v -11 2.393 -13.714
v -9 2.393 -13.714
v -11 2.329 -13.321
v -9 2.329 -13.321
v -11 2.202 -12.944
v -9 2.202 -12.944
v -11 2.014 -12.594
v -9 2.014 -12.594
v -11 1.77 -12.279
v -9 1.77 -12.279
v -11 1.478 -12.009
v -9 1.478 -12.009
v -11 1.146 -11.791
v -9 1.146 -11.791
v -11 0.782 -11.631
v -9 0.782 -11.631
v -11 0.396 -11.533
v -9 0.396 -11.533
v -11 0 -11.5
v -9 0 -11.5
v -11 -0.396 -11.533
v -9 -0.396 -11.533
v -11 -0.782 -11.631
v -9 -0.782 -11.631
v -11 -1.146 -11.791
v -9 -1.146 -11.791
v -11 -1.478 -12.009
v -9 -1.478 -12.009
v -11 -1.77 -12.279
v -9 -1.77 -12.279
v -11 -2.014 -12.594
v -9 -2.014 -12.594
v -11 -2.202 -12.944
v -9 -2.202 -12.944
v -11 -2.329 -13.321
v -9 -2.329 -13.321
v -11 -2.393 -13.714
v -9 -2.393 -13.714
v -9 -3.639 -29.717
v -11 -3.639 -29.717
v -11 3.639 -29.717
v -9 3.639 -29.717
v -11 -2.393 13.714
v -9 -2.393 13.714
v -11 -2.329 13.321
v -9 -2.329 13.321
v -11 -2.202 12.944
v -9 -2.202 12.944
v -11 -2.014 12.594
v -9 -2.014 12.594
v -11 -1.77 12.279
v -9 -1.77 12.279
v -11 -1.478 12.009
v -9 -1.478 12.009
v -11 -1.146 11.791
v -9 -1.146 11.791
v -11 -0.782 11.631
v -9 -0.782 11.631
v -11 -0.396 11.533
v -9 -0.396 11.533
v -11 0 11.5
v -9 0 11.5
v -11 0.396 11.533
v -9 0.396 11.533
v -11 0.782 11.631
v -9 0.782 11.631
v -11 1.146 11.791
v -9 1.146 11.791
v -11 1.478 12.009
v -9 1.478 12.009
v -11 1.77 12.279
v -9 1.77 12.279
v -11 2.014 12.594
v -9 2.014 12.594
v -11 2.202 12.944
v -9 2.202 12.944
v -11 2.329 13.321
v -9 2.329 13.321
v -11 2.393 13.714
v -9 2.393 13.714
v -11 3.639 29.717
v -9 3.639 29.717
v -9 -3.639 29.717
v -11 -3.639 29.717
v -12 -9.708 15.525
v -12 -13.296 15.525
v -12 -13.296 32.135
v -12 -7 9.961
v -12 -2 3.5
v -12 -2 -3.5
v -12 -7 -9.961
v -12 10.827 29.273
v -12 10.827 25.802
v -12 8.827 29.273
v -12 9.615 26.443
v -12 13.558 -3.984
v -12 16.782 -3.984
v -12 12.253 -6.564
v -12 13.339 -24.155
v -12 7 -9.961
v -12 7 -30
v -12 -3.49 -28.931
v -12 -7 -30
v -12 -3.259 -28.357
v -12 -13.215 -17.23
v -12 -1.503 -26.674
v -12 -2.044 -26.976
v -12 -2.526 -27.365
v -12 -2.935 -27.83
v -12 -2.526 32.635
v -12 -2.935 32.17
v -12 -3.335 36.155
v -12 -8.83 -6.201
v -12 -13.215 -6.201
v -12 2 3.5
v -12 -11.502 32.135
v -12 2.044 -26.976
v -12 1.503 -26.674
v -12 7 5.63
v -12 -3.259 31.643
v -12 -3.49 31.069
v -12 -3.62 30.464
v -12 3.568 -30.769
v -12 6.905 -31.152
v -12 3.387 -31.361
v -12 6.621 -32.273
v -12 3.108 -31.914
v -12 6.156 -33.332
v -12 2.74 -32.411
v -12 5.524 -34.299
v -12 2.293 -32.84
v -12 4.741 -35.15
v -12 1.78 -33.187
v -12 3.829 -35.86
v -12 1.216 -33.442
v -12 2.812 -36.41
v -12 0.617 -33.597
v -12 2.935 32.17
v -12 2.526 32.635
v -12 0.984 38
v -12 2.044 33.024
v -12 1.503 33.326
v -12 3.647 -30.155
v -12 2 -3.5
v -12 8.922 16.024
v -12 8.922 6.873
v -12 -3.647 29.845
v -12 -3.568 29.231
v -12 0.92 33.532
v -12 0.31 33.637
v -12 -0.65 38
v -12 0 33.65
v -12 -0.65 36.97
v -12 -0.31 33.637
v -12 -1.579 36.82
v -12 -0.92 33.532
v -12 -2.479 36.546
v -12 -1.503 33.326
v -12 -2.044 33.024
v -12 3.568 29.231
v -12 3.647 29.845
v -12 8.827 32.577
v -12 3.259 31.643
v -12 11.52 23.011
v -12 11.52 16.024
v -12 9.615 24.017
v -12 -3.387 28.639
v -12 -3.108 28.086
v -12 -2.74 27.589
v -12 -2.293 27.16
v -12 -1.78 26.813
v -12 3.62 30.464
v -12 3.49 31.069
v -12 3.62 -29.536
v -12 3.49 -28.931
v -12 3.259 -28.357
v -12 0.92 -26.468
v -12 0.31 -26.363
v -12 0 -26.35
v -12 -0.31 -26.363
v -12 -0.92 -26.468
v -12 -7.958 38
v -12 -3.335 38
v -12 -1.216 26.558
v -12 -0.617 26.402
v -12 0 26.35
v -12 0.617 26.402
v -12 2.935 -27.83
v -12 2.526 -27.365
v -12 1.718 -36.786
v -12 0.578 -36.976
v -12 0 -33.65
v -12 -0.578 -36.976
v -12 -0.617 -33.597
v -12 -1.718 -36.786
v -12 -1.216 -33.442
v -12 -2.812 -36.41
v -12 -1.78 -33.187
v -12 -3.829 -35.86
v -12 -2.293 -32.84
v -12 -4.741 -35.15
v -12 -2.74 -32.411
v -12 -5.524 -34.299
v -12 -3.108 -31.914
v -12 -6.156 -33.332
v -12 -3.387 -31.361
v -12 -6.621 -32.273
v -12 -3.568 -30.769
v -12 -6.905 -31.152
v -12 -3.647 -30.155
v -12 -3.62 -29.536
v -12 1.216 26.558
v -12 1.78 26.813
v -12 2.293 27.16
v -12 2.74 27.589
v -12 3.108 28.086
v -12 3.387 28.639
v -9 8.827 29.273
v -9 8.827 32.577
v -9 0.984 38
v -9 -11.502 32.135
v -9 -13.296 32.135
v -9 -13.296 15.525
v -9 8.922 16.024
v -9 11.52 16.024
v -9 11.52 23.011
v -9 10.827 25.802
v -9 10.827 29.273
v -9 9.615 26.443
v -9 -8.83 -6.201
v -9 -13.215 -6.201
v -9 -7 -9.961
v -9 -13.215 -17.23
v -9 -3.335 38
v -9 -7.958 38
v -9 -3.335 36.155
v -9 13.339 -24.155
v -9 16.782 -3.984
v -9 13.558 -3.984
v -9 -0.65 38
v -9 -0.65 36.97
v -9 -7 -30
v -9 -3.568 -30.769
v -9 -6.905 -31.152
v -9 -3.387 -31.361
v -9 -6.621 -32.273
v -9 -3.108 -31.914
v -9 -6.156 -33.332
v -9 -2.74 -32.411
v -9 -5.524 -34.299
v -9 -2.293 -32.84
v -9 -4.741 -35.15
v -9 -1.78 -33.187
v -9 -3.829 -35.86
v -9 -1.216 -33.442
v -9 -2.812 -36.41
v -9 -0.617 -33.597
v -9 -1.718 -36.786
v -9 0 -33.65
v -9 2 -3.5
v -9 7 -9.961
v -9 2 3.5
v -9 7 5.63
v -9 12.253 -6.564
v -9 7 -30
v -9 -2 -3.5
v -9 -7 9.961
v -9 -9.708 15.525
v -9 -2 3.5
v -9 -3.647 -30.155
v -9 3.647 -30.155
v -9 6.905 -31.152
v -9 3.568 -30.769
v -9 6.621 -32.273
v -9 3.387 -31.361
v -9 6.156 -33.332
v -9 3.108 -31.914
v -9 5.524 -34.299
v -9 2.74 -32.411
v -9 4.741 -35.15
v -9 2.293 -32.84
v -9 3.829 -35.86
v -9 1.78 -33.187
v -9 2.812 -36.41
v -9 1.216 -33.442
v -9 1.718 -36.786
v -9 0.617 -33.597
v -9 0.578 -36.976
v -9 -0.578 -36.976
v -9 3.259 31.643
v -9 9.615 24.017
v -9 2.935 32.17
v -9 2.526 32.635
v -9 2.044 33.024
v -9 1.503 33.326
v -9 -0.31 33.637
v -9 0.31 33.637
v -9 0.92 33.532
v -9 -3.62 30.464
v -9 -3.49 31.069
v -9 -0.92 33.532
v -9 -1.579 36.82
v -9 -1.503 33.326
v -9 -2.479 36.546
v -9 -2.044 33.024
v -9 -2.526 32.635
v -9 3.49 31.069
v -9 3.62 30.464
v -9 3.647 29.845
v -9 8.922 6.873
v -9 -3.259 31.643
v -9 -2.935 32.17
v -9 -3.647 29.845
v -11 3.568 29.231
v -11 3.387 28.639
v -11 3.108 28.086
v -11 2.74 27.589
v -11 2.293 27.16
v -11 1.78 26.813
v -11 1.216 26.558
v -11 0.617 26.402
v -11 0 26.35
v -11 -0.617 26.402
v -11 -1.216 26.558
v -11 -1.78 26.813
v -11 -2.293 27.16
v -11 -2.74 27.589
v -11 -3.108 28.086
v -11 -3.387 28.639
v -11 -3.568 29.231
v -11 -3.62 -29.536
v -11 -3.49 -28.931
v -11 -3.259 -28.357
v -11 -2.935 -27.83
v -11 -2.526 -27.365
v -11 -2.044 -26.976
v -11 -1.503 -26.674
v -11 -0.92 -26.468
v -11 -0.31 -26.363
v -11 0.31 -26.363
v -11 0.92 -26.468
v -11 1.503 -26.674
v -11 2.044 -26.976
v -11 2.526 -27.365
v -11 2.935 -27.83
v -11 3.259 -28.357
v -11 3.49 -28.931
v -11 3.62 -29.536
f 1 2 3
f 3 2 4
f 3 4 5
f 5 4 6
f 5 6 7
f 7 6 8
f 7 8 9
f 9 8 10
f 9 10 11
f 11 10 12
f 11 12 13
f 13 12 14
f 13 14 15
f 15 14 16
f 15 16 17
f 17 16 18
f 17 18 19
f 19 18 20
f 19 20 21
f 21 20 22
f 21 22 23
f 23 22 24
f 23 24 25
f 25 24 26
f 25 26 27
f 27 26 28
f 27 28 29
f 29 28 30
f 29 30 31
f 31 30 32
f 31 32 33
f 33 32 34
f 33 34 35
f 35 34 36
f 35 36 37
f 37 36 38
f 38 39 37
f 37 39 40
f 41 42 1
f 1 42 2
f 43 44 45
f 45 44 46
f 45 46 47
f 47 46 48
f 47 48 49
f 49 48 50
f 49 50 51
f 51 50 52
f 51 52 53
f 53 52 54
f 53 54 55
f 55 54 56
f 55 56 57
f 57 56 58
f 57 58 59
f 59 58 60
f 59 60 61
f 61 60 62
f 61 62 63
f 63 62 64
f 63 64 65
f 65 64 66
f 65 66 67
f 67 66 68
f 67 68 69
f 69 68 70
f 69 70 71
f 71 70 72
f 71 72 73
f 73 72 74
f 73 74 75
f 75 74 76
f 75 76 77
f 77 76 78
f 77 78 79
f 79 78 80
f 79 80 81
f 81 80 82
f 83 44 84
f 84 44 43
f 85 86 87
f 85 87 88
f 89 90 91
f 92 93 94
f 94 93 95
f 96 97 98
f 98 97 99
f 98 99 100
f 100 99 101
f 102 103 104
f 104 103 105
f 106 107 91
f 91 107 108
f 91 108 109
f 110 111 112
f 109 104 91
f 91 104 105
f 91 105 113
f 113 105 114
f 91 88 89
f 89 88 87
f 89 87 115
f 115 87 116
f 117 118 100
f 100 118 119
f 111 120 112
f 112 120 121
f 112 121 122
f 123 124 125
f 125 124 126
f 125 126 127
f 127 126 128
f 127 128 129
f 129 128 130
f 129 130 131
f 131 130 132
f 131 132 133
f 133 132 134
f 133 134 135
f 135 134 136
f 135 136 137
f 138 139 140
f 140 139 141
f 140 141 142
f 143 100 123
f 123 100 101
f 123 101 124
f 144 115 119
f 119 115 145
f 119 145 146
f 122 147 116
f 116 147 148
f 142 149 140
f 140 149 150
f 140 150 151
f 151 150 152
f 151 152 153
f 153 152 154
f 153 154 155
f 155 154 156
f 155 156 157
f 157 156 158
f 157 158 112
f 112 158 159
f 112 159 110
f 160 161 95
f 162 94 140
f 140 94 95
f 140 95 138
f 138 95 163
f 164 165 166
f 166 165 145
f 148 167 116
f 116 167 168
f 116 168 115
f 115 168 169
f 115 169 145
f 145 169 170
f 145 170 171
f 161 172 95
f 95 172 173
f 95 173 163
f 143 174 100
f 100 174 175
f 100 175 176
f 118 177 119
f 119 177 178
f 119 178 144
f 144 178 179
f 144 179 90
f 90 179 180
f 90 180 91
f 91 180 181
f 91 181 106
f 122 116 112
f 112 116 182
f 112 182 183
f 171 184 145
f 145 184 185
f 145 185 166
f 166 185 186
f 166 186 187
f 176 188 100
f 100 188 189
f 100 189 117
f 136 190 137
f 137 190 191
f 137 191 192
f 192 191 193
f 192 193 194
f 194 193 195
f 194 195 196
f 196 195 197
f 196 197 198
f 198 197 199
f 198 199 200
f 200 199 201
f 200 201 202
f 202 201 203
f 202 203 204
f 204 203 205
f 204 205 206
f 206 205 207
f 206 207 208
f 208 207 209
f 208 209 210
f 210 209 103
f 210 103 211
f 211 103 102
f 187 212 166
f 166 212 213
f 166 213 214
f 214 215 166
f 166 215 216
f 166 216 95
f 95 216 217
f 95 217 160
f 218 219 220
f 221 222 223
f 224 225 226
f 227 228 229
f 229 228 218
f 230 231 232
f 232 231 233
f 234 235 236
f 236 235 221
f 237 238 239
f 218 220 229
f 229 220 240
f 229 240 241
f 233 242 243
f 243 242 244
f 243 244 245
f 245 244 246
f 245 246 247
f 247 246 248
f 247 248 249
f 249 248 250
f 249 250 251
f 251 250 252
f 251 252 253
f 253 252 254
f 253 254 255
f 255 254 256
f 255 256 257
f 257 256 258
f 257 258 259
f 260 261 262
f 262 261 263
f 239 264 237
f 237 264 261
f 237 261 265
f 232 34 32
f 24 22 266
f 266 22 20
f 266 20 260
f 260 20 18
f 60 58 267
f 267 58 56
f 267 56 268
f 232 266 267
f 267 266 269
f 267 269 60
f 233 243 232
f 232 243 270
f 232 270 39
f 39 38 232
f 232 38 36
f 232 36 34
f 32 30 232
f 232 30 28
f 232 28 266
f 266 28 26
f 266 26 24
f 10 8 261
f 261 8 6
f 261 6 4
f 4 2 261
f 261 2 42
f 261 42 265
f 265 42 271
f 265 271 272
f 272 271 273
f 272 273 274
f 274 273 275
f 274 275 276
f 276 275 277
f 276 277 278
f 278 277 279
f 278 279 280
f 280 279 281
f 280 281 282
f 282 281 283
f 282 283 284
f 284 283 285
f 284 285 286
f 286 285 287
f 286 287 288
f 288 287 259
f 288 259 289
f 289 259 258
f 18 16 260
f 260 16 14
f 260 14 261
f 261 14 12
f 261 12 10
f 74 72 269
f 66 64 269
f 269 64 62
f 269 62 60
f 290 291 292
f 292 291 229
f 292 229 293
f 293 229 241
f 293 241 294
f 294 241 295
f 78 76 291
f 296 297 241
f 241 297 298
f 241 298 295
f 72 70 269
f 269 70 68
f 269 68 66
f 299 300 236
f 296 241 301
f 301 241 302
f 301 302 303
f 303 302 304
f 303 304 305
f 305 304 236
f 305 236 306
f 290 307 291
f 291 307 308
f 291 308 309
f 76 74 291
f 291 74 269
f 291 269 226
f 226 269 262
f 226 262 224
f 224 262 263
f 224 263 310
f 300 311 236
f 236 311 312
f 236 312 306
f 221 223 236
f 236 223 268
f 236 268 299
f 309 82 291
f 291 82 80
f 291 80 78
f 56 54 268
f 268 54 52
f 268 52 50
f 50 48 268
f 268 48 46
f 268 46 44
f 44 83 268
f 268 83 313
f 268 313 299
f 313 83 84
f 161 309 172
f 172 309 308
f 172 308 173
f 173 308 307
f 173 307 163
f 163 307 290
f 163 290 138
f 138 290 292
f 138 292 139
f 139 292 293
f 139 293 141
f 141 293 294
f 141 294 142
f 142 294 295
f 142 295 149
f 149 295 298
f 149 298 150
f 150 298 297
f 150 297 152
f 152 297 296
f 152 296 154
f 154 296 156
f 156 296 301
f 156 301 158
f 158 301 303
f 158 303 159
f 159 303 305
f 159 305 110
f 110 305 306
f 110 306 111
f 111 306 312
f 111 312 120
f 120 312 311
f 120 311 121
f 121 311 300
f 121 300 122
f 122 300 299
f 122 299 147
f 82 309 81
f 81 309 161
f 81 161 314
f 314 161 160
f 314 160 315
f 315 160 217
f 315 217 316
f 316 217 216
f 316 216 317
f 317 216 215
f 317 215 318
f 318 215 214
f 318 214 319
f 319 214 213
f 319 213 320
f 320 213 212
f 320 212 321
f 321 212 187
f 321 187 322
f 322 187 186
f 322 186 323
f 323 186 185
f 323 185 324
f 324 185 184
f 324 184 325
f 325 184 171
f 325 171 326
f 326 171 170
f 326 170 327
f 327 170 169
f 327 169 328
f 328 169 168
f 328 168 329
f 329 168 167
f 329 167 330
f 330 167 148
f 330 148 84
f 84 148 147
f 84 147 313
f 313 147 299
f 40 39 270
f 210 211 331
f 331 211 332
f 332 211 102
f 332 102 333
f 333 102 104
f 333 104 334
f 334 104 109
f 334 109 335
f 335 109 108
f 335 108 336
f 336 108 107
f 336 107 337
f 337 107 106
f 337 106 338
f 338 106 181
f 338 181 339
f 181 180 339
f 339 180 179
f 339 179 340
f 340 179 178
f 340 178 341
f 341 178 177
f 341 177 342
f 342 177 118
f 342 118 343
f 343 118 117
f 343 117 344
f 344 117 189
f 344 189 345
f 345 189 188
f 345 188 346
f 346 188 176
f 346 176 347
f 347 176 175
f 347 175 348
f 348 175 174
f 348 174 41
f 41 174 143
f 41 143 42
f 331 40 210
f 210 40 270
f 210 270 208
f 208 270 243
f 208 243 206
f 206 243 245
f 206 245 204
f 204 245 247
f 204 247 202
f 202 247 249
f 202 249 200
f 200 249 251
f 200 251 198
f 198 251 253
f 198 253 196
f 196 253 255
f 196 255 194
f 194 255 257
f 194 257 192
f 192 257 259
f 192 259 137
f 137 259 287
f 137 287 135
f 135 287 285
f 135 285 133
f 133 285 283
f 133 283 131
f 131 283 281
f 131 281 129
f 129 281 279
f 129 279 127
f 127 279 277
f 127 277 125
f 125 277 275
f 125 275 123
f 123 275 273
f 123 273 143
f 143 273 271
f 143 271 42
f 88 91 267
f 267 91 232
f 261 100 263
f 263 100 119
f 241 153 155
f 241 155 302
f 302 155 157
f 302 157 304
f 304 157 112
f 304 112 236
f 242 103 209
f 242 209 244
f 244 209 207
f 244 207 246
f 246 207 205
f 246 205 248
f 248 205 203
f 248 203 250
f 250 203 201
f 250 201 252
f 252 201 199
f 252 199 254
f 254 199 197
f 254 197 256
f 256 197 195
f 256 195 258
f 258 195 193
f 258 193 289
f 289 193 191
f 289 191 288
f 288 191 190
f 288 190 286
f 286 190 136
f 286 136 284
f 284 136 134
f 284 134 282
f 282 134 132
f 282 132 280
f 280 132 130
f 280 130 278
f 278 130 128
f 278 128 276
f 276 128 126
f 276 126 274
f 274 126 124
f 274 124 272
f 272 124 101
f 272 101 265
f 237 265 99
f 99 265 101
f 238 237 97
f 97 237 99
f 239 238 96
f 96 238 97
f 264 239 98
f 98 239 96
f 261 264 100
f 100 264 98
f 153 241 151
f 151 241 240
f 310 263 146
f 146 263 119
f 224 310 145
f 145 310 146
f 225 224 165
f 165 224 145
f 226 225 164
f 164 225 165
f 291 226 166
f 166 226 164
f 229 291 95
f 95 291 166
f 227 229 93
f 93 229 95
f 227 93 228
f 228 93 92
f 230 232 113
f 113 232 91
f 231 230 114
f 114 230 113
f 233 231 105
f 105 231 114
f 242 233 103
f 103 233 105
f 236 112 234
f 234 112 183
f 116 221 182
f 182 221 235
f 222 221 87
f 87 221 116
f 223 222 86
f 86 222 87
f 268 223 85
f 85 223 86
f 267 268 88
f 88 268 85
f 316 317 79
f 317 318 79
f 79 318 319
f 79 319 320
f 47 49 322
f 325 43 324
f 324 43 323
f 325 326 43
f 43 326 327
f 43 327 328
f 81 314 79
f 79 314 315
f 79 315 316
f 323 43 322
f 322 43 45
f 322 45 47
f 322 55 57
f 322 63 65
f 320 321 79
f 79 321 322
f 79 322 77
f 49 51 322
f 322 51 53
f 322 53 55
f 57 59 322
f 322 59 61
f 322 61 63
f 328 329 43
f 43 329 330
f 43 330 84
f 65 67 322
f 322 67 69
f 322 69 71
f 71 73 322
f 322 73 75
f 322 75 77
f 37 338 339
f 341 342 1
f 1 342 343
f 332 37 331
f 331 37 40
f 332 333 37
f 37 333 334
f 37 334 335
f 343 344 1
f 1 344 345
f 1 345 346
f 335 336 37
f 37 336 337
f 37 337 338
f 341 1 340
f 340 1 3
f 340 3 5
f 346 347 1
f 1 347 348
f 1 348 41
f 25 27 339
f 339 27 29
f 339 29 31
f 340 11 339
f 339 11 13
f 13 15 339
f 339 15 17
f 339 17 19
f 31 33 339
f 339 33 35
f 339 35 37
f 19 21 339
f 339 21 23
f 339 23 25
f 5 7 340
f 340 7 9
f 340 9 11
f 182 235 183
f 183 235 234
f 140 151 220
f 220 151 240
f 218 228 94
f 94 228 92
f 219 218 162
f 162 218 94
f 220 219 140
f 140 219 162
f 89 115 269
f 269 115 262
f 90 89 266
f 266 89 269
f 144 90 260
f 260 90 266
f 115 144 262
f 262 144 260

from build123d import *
from build123d.topology import SkipClean

# Parameters (mm, degrees)
BOSS_EXTRUDE1_DEPTH      = 7
BOSS_EXTRUDE1_DEPTH_BACK = 7
SKETCH3_R                = 7
BOSS_EXTRUDE2_DEPTH      = 3
CUT_EXTRUDE1_DEPTH       = 23
CUT_EXTRUDE1_DEPTH_BACK  = 23
SKETCH4_R                = 4
BOSS_EXTRUDE3_DEPTH      = 3
CUT_EXTRUDE2_DEPTH       = 20
CUT_EXTRUDE2_DEPTH_BACK  = 30
SKETCH6_W                = 36.146068324
SKETCH6_H                = 79.881394618
SKETCH7_W                = 6
SKETCH7_H                = 2
BOSS_EXTRUDE4_DEPTH      = 25
SKETCH8_R                = 1.5
CUT_EXTRUDE3_DEPTH       = 25
SKETCH9_W                = 6
SKETCH9_H                = 2
BOSS_EXTRUDE5_DEPTH      = 11
SKETCH10_R               = 4
SKETCH10_R_2             = 3.65
BOSS_EXTRUDE7_DEPTH      = 3
SKETCH11_R               = 2.4
CUT_EXTRUDE4_DEPTH       = 3
BOSS_EXTRUDE9_START      = -1
SKETCH13_W               = 69.204545587
SKETCH13_H               = 9.322892152
SKETCH13_R               = 3.65
BOSS_EXTRUDE9_DEPTH      = 1
SKETCH14_W               = 11.115756027
SKETCH14_H               = 43.925164946
CUT_EXTRUDE5_DEPTH       = 31
CUT_EXTRUDE6_DEPTH       = 22
SKETCH16_W               = 30.440127373
SKETCH16_H               = 8.446463946
CUT_EXTRUDE7_DEPTH       = 10
SKETCH17_W               = 7
SKETCH17_H               = 4
CUT_EXTRUDE8_DEPTH       = 10


with BuildPart() as part:
    # Sketch2 → Boss-Extrude1 (new, two sides: drawn at the far end of the back side and taken through both)
    with BuildSketch(Plane(origin=(0, 0, 0), x_dir=(1, 0, 0), z_dir=(0, 1, 0)).offset(-BOSS_EXTRUDE1_DEPTH_BACK)):
        Polygon((12, 30), (12, -30), (9, -30), (9, -1.5), (-9, -1.5), (-9, -30), (-12, -30), (-12, 30), (-9, 30), (-9, 1.5), (9, 1.5), (9, 30), align=None)
    extrude(amount=BOSS_EXTRUDE1_DEPTH + BOSS_EXTRUDE1_DEPTH_BACK)

    # Sketch3 → Boss-Extrude2 (add)
    with BuildSketch(Plane(origin=(12, 0, 0), x_dir=(0, 0, -1), z_dir=(1, 0, 0))):
        with Locations((-30, 0)):
            Circle(SKETCH3_R)
        with Locations((30, 0)):
            Circle(SKETCH3_R)
    boss_extrude2 = extrude(amount=-BOSS_EXTRUDE2_DEPTH)

    # Mirror1: Boss-Extrude2 across plane
    add(boss_extrude2.mirror(Plane.ZY))

    # Sketch4 → Cut-Extrude1 (cut, two sides: drawn at the far end of the back side and taken through both)
    with BuildSketch(Plane.ZY.offset(-CUT_EXTRUDE1_DEPTH_BACK)):
        with Locations(Location((-30, 0, 0), (0, 0, 180))):
            Circle(SKETCH4_R)
        with Locations(Location((30, 0, 0), (0, 0, 180))):
            Circle(SKETCH4_R)
    extrude(amount=CUT_EXTRUDE1_DEPTH + CUT_EXTRUDE1_DEPTH_BACK, mode=Mode.SUBTRACT)

    # Sketch5 → Boss-Extrude3 (add)
    with BuildSketch(Plane.ZY.offset(12)):
        Polygon((-30, 7), (-24.155374342, 13.339180653), (-3.984430585, 16.782248387), (-3.984430585, 13.558363221), (-6.564031008, 12.252853794), (-9.961076462, 7), align=None)
        Polygon((5.630173652, 7), (6.872920148, 8.921659787), (16.024340395, 8.921659787), (16.024340395, 11.520201473), (23.010764714, 11.520201473), (24.017423371, 9.614604237), (26.442728945, 9.614604237), (25.802127981, 10.827257024), (33.625376893, 10.827257024), (39.584451678, 2.208760433), (39.584451678, -0.649635421), (35.450408088, -0.649635421), (35.450408088, 3.248177107), (30.561687085, 6.409736158), (5.630173652, 6.409736158), align=None)
        Polygon((-30, -7), (-17.229678236, -13.21512033), (-6.200995871, -13.21512033), (-6.200995871, -8.829973728), (-9.961076462, -7), align=None)
        Polygon((9.961076462, -7), (15.524820582, -9.707789187), (15.524820582, -13.295871625), (32.135298846, -13.295871625), (32.135298846, -11.501830406), (39.584451678, -7), (39.584451678, -3.334795163), (35.450408088, -3.334795163), (31.744983073, -5.574136385), (9.961076462, -5.574136385), align=None)
    boss_extrude3 = extrude(amount=-BOSS_EXTRUDE3_DEPTH)

    # Mirror2: Boss-Extrude3 across plane
    add(boss_extrude3.mirror(Plane.ZY))

    # Sketch6 → Cut-Extrude2 (cut, two sides: drawn at the far end of the back side and taken through both)
    with BuildSketch(Plane(origin=(0, 7, 0), x_dir=(1, 0, 0), z_dir=(0, 1, 0)).offset(-CUT_EXTRUDE2_DEPTH_BACK)):
        with Locations((9.073034162, -2.940697309)):
            Rectangle(SKETCH6_W, SKETCH6_H)
    extrude(amount=CUT_EXTRUDE2_DEPTH + CUT_EXTRUDE2_DEPTH_BACK, mode=Mode.SUBTRACT)

    # Sketch7 → Boss-Extrude4 (add)
    with BuildSketch(Plane.ZY.offset(12)):
        with Locations((0, -2)):
            Rectangle(SKETCH7_W, SKETCH7_H)
    extrude(amount=BOSS_EXTRUDE4_DEPTH)

    # Sketch8 → Cut-Extrude3 (cut)
    with BuildSketch(Plane(origin=(0, -1, 0), x_dir=(1, 0, 0), z_dir=(0, 1, 0))):
        with Locations(Location((-34, 0, 0), (0, 0, 270))):
            Circle(SKETCH8_R)
        with Locations(Location((-26, 0, 0), (0, 0, 270))):
            Circle(SKETCH8_R)
    extrude(amount=-CUT_EXTRUDE3_DEPTH, mode=Mode.SUBTRACT)

    # Sketch9 → Boss-Extrude5 (add)
    with BuildSketch(Plane.ZY.offset(12)):
        Rectangle(SKETCH9_W, SKETCH9_H)
    extrude(amount=BOSS_EXTRUDE5_DEPTH)

    # Sketch10 → Boss-Extrude7 (add)
    # profile 1 of 2: a face of its own
    with BuildSketch(Plane(origin=(-9, 0, 0), x_dir=(0, 0, -1), z_dir=(1, 0, 0))):
        with Locations((-30, 0)):
            Circle(SKETCH10_R)
        with Locations((-30, 0)):
            Circle(SKETCH10_R_2, mode=Mode.SUBTRACT)
    # profile 2 of 2: a face of its own
    with BuildSketch(Plane(origin=(-9, 0, 0), x_dir=(0, 0, -1), z_dir=(1, 0, 0))):
        with Locations((30, 0)):
            Circle(SKETCH10_R)
        with Locations((30, 0)):
            Circle(SKETCH10_R_2, mode=Mode.SUBTRACT)
    extrude(amount=-BOSS_EXTRUDE7_DEPTH)

    # Sketch11 → Cut-Extrude4 (cut)
    with BuildSketch(Plane(origin=(-9, 0, 0), x_dir=(0, 0, -1), z_dir=(1, 0, 0))):
        with BuildLine():
            Line((-13.713664596, 2.392755549), (-29.716614907, 3.638982397))
            ThreePointArc((-29.716614907, 3.638982397), (-27.320741186, 2.478723907), (-26.35, 0))
            ThreePointArc((-26.35, 0), (-27.320741186, -2.478723907), (-29.716614907, -3.638982397))
            Line((-29.716614907, -3.638982397), (-13.713664596, -2.392755549))
            ThreePointArc((-13.713664596, -2.392755549), (-16.3, 0), (-13.713664596, 2.392755549))
        make_face()
        with Locations((-13.9, 0)):
            Circle(SKETCH11_R)
        with BuildLine():
            Line((29.716614907, 3.638982397), (13.713664596, 2.392755549))
            ThreePointArc((13.713664596, 2.392755549), (15.529845856, 1.761704426), (16.3, 0))
            ThreePointArc((16.3, 0), (15.529845856, -1.761704426), (13.713664596, -2.392755549))
            Line((13.713664596, -2.392755549), (29.716614907, -3.638982397))
            ThreePointArc((29.716614907, -3.638982397), (26.35, 0), (29.716614907, 3.638982397))
        make_face()
        with Locations((13.9, 0)):
            Circle(SKETCH11_R)
    extrude(amount=-CUT_EXTRUDE4_DEPTH, mode=Mode.SUBTRACT)

    # Sketch13 → Boss-Extrude9 (add)
    with SkipClean():  # the faces are left unmerged after this step: merging them gives an invalid solid
        with BuildSketch(Plane.ZY.offset(12).offset(BOSS_EXTRUDE9_START)):
            with Locations((0.485437096, -0.184140285)):
                Rectangle(SKETCH13_W, SKETCH13_H)
            with Locations(Location((-30, 0, 0), (0, 0, 85.547088609))):
                Circle(SKETCH13_R, mode=Mode.SUBTRACT)
            with Locations(Location((30, 0, 0), (0, 0, 265.547088609))):
                Circle(SKETCH13_R, mode=Mode.SUBTRACT)
        extrude(amount=BOSS_EXTRUDE9_DEPTH)
    add(part.part.scale(1), mode=Mode.REPLACE)  # the faces are merged on a copy

    # Sketch14 → Cut-Extrude5 (cut)
    with BuildSketch(Plane(origin=(-9, 0, 0), x_dir=(0, 0, -1), z_dir=(1, 0, 0))):
        with Locations((-43.557878014, -0.721999448)):
            Rectangle(SKETCH14_W, SKETCH14_H)
    extrude(amount=-CUT_EXTRUDE5_DEPTH, mode=Mode.SUBTRACT)

    # Sketch15 → Cut-Extrude6 (cut)
    with BuildSketch(Plane(origin=(-9, 0, 0), x_dir=(0, 0, -1), z_dir=(1, 0, 0))):
        Polygon((-39.300223418, -0.896828093), (-32.576713138, 8.827257024), (-29.273128497, 8.827257024), (-29.273128497, 11.015866037), (-39.300223418, 11.015866037), align=None)
    extrude(amount=-CUT_EXTRUDE6_DEPTH, mode=Mode.SUBTRACT)

    # Sketch16 → Cut-Extrude7 (cut)
    with BuildSketch(Plane(origin=(0, 1, 0), x_dir=(1, 0, 0), z_dir=(0, 1, 0))):
        with Locations((-27.220063687, 1.223231973)):
            Rectangle(SKETCH16_W, SKETCH16_H)
    extrude(amount=-CUT_EXTRUDE7_DEPTH, mode=Mode.SUBTRACT)

    # Sketch17 → Cut-Extrude8 (cut)
    with BuildSketch(Plane.ZY.offset(12)):
        Rectangle(SKETCH17_W, SKETCH17_H)
    extrude(amount=-CUT_EXTRUDE8_DEPTH, mode=Mode.SUBTRACT)


solid = part.part
